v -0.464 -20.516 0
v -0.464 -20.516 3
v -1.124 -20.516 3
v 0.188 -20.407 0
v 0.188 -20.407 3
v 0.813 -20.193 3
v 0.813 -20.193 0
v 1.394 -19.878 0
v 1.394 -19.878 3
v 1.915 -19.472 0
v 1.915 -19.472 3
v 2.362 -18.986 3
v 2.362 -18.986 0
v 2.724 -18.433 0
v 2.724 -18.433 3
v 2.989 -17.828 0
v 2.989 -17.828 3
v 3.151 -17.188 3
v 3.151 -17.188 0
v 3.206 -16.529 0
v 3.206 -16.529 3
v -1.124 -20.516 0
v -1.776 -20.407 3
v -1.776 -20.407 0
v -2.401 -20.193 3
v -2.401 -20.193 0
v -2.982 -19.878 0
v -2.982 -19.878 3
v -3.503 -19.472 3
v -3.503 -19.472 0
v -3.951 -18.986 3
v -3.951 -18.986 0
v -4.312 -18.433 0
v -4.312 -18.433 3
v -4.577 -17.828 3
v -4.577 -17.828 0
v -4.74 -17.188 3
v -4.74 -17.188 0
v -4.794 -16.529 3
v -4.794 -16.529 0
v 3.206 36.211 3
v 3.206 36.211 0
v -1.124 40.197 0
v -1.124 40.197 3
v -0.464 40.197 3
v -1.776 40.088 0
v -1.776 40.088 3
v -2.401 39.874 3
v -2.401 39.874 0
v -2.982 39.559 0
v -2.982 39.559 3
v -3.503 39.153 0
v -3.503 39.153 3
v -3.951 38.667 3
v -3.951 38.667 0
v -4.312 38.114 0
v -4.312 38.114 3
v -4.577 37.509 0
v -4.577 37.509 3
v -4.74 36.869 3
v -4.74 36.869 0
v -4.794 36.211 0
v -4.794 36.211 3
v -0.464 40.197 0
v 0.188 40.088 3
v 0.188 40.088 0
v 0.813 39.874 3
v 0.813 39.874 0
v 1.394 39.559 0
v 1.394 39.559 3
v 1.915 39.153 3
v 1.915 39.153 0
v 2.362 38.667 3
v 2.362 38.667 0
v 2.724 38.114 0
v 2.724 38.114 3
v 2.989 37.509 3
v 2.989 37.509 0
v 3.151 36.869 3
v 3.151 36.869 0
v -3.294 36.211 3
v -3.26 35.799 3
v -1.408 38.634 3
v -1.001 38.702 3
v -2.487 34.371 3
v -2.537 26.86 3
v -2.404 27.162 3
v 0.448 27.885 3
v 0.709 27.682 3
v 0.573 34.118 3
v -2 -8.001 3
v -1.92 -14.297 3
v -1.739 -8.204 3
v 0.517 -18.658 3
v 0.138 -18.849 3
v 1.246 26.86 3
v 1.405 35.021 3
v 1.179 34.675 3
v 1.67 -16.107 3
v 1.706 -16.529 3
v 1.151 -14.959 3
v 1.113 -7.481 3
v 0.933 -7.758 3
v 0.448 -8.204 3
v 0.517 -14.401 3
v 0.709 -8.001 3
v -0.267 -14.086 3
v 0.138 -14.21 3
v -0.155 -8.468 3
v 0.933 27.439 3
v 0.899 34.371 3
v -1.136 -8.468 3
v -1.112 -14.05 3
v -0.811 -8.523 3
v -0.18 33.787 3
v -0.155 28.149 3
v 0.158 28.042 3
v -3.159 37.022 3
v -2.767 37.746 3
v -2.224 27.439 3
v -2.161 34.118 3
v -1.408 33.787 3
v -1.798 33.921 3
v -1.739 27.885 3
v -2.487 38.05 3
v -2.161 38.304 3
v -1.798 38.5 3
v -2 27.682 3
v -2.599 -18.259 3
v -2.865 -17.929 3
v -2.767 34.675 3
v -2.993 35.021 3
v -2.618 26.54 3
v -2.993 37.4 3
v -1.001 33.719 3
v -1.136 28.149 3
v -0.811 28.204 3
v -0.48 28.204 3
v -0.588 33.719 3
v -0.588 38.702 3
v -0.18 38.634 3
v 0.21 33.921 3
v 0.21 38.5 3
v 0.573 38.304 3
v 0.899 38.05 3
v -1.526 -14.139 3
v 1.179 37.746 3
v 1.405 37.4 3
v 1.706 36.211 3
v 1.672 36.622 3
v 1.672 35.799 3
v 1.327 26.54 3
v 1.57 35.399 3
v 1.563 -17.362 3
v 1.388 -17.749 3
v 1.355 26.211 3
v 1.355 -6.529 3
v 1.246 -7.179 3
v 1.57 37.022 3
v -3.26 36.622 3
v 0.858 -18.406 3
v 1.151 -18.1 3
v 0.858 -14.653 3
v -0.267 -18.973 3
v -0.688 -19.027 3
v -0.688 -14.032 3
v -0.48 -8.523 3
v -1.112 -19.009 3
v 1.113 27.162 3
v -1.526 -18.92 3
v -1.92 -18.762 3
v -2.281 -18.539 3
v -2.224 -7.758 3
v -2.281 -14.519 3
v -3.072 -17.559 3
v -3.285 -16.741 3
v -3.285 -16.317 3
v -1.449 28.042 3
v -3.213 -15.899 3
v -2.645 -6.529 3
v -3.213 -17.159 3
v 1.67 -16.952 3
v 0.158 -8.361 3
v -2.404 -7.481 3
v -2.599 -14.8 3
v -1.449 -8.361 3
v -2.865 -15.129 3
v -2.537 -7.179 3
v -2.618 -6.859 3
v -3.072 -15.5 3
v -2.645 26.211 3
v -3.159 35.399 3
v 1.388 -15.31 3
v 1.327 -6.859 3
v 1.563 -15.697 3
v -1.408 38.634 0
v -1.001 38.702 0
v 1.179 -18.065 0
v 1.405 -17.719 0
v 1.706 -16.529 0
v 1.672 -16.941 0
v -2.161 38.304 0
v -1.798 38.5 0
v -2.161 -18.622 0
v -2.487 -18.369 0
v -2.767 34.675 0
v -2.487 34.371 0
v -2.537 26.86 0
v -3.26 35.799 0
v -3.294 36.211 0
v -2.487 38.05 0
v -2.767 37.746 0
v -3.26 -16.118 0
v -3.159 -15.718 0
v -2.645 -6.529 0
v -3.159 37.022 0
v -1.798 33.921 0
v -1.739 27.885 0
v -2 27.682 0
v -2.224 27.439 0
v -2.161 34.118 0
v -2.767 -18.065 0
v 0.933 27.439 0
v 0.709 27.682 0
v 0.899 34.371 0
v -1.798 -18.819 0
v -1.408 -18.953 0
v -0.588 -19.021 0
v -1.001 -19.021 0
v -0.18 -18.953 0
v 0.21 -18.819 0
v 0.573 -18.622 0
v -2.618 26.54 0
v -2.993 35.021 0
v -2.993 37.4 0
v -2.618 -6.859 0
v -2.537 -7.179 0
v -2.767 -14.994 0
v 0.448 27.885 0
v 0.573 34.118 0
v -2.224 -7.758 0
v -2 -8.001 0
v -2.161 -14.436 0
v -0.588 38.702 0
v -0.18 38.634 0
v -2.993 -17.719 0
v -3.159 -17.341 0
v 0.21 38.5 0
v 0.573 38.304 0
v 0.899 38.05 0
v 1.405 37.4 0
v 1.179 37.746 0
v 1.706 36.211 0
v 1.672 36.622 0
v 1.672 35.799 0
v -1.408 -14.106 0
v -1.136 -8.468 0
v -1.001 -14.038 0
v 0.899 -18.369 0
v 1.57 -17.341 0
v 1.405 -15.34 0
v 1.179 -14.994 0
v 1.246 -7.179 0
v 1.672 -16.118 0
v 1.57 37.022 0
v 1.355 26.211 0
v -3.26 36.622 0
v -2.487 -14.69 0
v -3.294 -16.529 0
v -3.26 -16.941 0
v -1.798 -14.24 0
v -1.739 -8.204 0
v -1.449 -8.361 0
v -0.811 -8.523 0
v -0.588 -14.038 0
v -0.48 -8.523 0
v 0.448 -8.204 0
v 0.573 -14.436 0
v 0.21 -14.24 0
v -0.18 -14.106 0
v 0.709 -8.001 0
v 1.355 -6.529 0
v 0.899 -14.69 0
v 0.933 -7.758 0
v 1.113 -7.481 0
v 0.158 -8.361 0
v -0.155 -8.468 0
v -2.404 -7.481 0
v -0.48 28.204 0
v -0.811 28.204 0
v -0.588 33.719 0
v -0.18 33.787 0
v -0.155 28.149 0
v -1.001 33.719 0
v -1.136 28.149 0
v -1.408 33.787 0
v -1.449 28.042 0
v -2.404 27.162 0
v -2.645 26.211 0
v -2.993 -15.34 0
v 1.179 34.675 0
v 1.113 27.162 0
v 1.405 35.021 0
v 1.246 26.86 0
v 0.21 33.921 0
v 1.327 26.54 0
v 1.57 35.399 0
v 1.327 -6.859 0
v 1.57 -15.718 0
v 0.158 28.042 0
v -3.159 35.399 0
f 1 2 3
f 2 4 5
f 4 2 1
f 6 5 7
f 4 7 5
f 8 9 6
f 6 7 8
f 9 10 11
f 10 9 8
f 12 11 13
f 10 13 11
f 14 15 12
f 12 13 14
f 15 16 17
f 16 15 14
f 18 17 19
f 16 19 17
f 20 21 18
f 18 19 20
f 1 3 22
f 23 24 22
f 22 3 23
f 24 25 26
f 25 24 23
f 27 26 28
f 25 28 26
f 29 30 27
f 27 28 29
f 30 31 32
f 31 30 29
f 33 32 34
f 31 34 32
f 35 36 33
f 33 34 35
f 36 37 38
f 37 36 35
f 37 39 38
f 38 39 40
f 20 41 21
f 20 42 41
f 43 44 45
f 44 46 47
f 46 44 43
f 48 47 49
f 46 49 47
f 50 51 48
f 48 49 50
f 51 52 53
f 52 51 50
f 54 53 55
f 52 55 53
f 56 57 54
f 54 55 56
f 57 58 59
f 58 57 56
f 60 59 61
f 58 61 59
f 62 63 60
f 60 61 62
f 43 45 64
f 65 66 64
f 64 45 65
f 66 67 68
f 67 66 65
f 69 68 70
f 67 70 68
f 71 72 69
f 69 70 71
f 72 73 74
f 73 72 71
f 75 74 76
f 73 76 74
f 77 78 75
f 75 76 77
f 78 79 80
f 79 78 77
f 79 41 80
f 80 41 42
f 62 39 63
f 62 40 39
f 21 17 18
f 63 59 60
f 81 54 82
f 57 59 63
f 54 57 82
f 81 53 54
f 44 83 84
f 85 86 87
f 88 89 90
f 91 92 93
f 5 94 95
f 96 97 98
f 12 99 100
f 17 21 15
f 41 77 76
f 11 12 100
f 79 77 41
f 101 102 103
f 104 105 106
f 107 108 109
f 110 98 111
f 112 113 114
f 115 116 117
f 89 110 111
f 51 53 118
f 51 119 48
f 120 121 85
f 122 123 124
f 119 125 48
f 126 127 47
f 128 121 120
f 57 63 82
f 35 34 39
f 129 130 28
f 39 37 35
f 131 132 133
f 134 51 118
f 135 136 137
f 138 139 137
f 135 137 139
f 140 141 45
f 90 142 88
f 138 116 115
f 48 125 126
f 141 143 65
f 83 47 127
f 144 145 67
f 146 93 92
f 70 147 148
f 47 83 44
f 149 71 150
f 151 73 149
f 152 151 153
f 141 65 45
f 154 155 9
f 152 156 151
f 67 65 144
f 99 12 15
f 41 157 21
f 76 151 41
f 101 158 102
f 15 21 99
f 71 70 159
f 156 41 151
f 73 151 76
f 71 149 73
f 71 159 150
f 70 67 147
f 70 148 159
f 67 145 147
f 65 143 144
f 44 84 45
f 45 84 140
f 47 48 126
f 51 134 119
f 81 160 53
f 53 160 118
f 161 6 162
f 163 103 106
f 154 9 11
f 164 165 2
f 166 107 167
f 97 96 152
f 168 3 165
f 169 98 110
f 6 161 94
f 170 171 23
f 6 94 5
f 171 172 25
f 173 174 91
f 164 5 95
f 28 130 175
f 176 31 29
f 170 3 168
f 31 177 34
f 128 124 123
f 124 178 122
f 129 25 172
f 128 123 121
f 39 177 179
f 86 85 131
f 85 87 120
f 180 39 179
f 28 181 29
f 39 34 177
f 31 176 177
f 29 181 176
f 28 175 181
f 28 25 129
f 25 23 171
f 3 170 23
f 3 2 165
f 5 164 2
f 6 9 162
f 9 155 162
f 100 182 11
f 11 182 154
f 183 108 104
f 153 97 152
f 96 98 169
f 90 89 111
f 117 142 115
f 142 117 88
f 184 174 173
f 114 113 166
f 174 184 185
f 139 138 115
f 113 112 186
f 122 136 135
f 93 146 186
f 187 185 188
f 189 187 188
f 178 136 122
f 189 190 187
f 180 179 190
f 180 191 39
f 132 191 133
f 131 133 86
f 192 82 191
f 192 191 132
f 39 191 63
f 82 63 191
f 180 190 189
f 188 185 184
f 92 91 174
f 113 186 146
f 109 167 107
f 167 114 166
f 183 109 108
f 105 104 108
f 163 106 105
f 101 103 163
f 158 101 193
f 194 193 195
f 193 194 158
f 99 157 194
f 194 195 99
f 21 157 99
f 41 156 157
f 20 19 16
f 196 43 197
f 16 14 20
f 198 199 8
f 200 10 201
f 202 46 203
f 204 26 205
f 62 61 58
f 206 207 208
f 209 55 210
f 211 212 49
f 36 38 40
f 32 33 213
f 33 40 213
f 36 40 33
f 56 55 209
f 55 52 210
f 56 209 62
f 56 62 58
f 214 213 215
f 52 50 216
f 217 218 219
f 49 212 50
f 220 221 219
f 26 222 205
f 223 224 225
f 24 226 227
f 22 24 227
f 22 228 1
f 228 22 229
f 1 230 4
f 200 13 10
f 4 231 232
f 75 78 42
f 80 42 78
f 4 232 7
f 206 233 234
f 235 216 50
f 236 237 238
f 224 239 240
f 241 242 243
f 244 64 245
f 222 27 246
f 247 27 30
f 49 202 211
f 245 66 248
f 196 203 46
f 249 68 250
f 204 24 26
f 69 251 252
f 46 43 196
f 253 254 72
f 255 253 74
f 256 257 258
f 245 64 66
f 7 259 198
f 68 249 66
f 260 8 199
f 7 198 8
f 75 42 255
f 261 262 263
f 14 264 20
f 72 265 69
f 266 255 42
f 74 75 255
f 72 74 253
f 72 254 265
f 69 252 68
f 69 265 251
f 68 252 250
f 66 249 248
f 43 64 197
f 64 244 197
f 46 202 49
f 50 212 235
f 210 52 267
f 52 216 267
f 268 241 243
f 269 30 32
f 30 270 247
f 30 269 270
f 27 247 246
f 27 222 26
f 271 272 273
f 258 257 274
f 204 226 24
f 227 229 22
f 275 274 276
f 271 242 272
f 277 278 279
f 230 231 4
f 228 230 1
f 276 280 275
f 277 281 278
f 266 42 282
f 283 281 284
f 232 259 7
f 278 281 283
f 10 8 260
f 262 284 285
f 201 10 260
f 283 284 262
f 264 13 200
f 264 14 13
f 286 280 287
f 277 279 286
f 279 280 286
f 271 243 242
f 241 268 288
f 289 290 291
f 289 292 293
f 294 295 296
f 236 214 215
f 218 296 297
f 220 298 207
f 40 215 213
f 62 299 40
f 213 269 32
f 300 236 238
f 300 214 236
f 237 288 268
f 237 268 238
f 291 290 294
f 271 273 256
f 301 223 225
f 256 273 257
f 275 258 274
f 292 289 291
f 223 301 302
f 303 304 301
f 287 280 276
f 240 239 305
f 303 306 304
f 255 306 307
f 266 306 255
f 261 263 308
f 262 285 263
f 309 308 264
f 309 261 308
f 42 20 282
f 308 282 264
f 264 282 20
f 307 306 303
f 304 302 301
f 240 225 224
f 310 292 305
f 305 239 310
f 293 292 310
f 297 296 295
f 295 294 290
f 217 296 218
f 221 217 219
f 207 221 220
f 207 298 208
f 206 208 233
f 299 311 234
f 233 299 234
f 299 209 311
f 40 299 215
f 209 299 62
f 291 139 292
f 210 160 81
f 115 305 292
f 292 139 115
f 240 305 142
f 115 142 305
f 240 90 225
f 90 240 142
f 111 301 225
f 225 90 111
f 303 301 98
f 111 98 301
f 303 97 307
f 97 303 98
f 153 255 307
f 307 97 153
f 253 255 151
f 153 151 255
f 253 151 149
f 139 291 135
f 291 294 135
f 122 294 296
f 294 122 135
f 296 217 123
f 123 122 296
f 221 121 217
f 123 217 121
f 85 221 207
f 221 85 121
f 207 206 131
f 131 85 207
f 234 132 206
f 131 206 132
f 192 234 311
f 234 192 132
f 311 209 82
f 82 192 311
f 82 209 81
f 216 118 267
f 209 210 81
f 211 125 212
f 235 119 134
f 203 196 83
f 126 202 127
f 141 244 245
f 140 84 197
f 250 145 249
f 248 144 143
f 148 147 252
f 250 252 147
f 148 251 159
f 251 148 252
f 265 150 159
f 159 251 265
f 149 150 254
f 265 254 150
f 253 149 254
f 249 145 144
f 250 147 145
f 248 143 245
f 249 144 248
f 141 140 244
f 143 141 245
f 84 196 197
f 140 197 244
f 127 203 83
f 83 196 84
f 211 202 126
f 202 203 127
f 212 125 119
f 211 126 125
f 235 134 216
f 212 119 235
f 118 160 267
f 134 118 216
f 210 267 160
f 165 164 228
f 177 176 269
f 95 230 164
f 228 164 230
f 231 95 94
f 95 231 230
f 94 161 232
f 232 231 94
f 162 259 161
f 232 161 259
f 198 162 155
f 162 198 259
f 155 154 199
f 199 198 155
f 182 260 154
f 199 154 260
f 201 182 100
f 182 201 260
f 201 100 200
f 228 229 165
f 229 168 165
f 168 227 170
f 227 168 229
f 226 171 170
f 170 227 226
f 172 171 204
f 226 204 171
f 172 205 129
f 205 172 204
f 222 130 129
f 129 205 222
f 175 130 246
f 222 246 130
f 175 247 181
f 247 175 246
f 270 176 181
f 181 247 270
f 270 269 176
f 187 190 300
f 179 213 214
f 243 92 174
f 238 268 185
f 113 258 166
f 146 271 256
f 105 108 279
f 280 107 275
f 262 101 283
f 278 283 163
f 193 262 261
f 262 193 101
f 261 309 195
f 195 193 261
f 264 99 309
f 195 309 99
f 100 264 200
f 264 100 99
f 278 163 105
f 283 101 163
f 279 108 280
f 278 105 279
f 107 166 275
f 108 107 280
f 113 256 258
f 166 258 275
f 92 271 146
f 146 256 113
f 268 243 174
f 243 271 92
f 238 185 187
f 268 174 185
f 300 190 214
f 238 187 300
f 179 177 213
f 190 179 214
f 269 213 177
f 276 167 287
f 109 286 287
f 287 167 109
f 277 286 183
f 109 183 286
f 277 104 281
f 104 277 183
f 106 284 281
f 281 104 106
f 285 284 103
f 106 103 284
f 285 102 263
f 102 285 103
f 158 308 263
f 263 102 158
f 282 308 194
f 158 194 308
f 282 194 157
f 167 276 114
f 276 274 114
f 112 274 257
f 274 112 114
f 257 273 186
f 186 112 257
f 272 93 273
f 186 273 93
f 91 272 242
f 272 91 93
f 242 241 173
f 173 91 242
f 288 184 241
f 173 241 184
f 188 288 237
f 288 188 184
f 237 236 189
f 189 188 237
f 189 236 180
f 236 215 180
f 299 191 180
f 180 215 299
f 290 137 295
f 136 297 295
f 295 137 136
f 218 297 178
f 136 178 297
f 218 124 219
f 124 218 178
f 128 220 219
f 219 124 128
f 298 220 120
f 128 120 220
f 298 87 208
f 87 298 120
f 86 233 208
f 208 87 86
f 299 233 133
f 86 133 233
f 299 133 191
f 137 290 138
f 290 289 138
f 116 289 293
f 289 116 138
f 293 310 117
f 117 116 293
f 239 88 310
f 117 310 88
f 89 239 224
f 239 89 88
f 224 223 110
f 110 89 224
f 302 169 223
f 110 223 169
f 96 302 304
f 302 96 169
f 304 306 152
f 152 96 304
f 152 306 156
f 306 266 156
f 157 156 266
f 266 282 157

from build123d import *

# Parameters (mm, degrees)
BOSS_EXTRUDE1_DEPTH = 3
CUT_EXTRUDE1_REACH  = 42.606
SKETCH2_R           = 2.5
CUT_EXTRUDE2_REACH  = 42.606


with BuildPart() as part:
    # Sketch1 → Boss-Extrude1 (new body)
    with BuildSketch(Plane(origin=(0, 0, 0), x_dir=(0, 1, 0), z_dir=(0, 0, 1))):
        with BuildLine():
            Line((-16.529411765, 4.794117647), (36.210588235, 4.794117647))
            ThreePointArc((36.210588235, 4.794117647), (40.210588235, 0.794117647), (36.210588235, -3.205882353))
            Line((36.210588235, -3.205882353), (-16.529411765, -3.205882353))
            ThreePointArc((-16.529411765, -3.205882353), (-20.529411765, 0.794117647), (-16.529411765, 4.794117647))
        make_face()
    extrude(amount=BOSS_EXTRUDE1_DEPTH)

    # Sketch2 → Cut-Extrude1 (cut, up to next)
    with BuildSketch(Plane.XY.offset(3), mode=Mode.PRIVATE) as cut_extrude1_sk1:
        with Locations((-0.794117647, -16.529411765)):
            Circle(SKETCH2_R)
    cut_extrude1_tool1 = extrude(cut_extrude1_sk1.sketch, amount=-CUT_EXTRUDE1_REACH, mode=Mode.PRIVATE) & part.part
    # Sketch2 → Cut-Extrude1 (cut, up to next)
    with BuildSketch(Plane.XY.offset(3), mode=Mode.PRIVATE) as cut_extrude1_sk2:
        with Locations((-0.794117647, 36.210588235)):
            Circle(SKETCH2_R)
    cut_extrude1_tool2 = extrude(cut_extrude1_sk2.sketch, amount=-CUT_EXTRUDE1_REACH, mode=Mode.PRIVATE) & part.part
    add(cut_extrude1_tool1.solids().sort_by_distance((-0.794118, -16.529412, 3))[0], mode=Mode.SUBTRACT)
    add(cut_extrude1_tool2.solids().sort_by_distance((-0.794118, 36.210588, 3))[0], mode=Mode.SUBTRACT)

    # Sketch3 → Cut-Extrude2 (cut, up to next)
    with BuildSketch(Plane.XY.offset(3), mode=Mode.PRIVATE) as cut_extrude2_sk1:
        with BuildLine():
            Line((-2.645474442, -6.529411765), (-2.645474442, 26.210588235))
            ThreePointArc((-2.645474442, 26.210588235), (-0.645474442, 28.210588235), (1.354525558, 26.210588235))
            Line((1.354525558, 26.210588235), (1.354525558, -6.529411765))
            ThreePointArc((1.354525558, -6.529411765), (-0.645474442, -8.529411765), (-2.645474442, -6.529411765))
        make_face()
    cut_extrude2_tool1 = extrude(cut_extrude2_sk1.sketch, amount=-CUT_EXTRUDE2_REACH, mode=Mode.PRIVATE) & part.part
    add(cut_extrude2_tool1.solids().sort_by_distance((-0.645474, 9.840588, 3))[0], mode=Mode.SUBTRACT)


solid = part.part
